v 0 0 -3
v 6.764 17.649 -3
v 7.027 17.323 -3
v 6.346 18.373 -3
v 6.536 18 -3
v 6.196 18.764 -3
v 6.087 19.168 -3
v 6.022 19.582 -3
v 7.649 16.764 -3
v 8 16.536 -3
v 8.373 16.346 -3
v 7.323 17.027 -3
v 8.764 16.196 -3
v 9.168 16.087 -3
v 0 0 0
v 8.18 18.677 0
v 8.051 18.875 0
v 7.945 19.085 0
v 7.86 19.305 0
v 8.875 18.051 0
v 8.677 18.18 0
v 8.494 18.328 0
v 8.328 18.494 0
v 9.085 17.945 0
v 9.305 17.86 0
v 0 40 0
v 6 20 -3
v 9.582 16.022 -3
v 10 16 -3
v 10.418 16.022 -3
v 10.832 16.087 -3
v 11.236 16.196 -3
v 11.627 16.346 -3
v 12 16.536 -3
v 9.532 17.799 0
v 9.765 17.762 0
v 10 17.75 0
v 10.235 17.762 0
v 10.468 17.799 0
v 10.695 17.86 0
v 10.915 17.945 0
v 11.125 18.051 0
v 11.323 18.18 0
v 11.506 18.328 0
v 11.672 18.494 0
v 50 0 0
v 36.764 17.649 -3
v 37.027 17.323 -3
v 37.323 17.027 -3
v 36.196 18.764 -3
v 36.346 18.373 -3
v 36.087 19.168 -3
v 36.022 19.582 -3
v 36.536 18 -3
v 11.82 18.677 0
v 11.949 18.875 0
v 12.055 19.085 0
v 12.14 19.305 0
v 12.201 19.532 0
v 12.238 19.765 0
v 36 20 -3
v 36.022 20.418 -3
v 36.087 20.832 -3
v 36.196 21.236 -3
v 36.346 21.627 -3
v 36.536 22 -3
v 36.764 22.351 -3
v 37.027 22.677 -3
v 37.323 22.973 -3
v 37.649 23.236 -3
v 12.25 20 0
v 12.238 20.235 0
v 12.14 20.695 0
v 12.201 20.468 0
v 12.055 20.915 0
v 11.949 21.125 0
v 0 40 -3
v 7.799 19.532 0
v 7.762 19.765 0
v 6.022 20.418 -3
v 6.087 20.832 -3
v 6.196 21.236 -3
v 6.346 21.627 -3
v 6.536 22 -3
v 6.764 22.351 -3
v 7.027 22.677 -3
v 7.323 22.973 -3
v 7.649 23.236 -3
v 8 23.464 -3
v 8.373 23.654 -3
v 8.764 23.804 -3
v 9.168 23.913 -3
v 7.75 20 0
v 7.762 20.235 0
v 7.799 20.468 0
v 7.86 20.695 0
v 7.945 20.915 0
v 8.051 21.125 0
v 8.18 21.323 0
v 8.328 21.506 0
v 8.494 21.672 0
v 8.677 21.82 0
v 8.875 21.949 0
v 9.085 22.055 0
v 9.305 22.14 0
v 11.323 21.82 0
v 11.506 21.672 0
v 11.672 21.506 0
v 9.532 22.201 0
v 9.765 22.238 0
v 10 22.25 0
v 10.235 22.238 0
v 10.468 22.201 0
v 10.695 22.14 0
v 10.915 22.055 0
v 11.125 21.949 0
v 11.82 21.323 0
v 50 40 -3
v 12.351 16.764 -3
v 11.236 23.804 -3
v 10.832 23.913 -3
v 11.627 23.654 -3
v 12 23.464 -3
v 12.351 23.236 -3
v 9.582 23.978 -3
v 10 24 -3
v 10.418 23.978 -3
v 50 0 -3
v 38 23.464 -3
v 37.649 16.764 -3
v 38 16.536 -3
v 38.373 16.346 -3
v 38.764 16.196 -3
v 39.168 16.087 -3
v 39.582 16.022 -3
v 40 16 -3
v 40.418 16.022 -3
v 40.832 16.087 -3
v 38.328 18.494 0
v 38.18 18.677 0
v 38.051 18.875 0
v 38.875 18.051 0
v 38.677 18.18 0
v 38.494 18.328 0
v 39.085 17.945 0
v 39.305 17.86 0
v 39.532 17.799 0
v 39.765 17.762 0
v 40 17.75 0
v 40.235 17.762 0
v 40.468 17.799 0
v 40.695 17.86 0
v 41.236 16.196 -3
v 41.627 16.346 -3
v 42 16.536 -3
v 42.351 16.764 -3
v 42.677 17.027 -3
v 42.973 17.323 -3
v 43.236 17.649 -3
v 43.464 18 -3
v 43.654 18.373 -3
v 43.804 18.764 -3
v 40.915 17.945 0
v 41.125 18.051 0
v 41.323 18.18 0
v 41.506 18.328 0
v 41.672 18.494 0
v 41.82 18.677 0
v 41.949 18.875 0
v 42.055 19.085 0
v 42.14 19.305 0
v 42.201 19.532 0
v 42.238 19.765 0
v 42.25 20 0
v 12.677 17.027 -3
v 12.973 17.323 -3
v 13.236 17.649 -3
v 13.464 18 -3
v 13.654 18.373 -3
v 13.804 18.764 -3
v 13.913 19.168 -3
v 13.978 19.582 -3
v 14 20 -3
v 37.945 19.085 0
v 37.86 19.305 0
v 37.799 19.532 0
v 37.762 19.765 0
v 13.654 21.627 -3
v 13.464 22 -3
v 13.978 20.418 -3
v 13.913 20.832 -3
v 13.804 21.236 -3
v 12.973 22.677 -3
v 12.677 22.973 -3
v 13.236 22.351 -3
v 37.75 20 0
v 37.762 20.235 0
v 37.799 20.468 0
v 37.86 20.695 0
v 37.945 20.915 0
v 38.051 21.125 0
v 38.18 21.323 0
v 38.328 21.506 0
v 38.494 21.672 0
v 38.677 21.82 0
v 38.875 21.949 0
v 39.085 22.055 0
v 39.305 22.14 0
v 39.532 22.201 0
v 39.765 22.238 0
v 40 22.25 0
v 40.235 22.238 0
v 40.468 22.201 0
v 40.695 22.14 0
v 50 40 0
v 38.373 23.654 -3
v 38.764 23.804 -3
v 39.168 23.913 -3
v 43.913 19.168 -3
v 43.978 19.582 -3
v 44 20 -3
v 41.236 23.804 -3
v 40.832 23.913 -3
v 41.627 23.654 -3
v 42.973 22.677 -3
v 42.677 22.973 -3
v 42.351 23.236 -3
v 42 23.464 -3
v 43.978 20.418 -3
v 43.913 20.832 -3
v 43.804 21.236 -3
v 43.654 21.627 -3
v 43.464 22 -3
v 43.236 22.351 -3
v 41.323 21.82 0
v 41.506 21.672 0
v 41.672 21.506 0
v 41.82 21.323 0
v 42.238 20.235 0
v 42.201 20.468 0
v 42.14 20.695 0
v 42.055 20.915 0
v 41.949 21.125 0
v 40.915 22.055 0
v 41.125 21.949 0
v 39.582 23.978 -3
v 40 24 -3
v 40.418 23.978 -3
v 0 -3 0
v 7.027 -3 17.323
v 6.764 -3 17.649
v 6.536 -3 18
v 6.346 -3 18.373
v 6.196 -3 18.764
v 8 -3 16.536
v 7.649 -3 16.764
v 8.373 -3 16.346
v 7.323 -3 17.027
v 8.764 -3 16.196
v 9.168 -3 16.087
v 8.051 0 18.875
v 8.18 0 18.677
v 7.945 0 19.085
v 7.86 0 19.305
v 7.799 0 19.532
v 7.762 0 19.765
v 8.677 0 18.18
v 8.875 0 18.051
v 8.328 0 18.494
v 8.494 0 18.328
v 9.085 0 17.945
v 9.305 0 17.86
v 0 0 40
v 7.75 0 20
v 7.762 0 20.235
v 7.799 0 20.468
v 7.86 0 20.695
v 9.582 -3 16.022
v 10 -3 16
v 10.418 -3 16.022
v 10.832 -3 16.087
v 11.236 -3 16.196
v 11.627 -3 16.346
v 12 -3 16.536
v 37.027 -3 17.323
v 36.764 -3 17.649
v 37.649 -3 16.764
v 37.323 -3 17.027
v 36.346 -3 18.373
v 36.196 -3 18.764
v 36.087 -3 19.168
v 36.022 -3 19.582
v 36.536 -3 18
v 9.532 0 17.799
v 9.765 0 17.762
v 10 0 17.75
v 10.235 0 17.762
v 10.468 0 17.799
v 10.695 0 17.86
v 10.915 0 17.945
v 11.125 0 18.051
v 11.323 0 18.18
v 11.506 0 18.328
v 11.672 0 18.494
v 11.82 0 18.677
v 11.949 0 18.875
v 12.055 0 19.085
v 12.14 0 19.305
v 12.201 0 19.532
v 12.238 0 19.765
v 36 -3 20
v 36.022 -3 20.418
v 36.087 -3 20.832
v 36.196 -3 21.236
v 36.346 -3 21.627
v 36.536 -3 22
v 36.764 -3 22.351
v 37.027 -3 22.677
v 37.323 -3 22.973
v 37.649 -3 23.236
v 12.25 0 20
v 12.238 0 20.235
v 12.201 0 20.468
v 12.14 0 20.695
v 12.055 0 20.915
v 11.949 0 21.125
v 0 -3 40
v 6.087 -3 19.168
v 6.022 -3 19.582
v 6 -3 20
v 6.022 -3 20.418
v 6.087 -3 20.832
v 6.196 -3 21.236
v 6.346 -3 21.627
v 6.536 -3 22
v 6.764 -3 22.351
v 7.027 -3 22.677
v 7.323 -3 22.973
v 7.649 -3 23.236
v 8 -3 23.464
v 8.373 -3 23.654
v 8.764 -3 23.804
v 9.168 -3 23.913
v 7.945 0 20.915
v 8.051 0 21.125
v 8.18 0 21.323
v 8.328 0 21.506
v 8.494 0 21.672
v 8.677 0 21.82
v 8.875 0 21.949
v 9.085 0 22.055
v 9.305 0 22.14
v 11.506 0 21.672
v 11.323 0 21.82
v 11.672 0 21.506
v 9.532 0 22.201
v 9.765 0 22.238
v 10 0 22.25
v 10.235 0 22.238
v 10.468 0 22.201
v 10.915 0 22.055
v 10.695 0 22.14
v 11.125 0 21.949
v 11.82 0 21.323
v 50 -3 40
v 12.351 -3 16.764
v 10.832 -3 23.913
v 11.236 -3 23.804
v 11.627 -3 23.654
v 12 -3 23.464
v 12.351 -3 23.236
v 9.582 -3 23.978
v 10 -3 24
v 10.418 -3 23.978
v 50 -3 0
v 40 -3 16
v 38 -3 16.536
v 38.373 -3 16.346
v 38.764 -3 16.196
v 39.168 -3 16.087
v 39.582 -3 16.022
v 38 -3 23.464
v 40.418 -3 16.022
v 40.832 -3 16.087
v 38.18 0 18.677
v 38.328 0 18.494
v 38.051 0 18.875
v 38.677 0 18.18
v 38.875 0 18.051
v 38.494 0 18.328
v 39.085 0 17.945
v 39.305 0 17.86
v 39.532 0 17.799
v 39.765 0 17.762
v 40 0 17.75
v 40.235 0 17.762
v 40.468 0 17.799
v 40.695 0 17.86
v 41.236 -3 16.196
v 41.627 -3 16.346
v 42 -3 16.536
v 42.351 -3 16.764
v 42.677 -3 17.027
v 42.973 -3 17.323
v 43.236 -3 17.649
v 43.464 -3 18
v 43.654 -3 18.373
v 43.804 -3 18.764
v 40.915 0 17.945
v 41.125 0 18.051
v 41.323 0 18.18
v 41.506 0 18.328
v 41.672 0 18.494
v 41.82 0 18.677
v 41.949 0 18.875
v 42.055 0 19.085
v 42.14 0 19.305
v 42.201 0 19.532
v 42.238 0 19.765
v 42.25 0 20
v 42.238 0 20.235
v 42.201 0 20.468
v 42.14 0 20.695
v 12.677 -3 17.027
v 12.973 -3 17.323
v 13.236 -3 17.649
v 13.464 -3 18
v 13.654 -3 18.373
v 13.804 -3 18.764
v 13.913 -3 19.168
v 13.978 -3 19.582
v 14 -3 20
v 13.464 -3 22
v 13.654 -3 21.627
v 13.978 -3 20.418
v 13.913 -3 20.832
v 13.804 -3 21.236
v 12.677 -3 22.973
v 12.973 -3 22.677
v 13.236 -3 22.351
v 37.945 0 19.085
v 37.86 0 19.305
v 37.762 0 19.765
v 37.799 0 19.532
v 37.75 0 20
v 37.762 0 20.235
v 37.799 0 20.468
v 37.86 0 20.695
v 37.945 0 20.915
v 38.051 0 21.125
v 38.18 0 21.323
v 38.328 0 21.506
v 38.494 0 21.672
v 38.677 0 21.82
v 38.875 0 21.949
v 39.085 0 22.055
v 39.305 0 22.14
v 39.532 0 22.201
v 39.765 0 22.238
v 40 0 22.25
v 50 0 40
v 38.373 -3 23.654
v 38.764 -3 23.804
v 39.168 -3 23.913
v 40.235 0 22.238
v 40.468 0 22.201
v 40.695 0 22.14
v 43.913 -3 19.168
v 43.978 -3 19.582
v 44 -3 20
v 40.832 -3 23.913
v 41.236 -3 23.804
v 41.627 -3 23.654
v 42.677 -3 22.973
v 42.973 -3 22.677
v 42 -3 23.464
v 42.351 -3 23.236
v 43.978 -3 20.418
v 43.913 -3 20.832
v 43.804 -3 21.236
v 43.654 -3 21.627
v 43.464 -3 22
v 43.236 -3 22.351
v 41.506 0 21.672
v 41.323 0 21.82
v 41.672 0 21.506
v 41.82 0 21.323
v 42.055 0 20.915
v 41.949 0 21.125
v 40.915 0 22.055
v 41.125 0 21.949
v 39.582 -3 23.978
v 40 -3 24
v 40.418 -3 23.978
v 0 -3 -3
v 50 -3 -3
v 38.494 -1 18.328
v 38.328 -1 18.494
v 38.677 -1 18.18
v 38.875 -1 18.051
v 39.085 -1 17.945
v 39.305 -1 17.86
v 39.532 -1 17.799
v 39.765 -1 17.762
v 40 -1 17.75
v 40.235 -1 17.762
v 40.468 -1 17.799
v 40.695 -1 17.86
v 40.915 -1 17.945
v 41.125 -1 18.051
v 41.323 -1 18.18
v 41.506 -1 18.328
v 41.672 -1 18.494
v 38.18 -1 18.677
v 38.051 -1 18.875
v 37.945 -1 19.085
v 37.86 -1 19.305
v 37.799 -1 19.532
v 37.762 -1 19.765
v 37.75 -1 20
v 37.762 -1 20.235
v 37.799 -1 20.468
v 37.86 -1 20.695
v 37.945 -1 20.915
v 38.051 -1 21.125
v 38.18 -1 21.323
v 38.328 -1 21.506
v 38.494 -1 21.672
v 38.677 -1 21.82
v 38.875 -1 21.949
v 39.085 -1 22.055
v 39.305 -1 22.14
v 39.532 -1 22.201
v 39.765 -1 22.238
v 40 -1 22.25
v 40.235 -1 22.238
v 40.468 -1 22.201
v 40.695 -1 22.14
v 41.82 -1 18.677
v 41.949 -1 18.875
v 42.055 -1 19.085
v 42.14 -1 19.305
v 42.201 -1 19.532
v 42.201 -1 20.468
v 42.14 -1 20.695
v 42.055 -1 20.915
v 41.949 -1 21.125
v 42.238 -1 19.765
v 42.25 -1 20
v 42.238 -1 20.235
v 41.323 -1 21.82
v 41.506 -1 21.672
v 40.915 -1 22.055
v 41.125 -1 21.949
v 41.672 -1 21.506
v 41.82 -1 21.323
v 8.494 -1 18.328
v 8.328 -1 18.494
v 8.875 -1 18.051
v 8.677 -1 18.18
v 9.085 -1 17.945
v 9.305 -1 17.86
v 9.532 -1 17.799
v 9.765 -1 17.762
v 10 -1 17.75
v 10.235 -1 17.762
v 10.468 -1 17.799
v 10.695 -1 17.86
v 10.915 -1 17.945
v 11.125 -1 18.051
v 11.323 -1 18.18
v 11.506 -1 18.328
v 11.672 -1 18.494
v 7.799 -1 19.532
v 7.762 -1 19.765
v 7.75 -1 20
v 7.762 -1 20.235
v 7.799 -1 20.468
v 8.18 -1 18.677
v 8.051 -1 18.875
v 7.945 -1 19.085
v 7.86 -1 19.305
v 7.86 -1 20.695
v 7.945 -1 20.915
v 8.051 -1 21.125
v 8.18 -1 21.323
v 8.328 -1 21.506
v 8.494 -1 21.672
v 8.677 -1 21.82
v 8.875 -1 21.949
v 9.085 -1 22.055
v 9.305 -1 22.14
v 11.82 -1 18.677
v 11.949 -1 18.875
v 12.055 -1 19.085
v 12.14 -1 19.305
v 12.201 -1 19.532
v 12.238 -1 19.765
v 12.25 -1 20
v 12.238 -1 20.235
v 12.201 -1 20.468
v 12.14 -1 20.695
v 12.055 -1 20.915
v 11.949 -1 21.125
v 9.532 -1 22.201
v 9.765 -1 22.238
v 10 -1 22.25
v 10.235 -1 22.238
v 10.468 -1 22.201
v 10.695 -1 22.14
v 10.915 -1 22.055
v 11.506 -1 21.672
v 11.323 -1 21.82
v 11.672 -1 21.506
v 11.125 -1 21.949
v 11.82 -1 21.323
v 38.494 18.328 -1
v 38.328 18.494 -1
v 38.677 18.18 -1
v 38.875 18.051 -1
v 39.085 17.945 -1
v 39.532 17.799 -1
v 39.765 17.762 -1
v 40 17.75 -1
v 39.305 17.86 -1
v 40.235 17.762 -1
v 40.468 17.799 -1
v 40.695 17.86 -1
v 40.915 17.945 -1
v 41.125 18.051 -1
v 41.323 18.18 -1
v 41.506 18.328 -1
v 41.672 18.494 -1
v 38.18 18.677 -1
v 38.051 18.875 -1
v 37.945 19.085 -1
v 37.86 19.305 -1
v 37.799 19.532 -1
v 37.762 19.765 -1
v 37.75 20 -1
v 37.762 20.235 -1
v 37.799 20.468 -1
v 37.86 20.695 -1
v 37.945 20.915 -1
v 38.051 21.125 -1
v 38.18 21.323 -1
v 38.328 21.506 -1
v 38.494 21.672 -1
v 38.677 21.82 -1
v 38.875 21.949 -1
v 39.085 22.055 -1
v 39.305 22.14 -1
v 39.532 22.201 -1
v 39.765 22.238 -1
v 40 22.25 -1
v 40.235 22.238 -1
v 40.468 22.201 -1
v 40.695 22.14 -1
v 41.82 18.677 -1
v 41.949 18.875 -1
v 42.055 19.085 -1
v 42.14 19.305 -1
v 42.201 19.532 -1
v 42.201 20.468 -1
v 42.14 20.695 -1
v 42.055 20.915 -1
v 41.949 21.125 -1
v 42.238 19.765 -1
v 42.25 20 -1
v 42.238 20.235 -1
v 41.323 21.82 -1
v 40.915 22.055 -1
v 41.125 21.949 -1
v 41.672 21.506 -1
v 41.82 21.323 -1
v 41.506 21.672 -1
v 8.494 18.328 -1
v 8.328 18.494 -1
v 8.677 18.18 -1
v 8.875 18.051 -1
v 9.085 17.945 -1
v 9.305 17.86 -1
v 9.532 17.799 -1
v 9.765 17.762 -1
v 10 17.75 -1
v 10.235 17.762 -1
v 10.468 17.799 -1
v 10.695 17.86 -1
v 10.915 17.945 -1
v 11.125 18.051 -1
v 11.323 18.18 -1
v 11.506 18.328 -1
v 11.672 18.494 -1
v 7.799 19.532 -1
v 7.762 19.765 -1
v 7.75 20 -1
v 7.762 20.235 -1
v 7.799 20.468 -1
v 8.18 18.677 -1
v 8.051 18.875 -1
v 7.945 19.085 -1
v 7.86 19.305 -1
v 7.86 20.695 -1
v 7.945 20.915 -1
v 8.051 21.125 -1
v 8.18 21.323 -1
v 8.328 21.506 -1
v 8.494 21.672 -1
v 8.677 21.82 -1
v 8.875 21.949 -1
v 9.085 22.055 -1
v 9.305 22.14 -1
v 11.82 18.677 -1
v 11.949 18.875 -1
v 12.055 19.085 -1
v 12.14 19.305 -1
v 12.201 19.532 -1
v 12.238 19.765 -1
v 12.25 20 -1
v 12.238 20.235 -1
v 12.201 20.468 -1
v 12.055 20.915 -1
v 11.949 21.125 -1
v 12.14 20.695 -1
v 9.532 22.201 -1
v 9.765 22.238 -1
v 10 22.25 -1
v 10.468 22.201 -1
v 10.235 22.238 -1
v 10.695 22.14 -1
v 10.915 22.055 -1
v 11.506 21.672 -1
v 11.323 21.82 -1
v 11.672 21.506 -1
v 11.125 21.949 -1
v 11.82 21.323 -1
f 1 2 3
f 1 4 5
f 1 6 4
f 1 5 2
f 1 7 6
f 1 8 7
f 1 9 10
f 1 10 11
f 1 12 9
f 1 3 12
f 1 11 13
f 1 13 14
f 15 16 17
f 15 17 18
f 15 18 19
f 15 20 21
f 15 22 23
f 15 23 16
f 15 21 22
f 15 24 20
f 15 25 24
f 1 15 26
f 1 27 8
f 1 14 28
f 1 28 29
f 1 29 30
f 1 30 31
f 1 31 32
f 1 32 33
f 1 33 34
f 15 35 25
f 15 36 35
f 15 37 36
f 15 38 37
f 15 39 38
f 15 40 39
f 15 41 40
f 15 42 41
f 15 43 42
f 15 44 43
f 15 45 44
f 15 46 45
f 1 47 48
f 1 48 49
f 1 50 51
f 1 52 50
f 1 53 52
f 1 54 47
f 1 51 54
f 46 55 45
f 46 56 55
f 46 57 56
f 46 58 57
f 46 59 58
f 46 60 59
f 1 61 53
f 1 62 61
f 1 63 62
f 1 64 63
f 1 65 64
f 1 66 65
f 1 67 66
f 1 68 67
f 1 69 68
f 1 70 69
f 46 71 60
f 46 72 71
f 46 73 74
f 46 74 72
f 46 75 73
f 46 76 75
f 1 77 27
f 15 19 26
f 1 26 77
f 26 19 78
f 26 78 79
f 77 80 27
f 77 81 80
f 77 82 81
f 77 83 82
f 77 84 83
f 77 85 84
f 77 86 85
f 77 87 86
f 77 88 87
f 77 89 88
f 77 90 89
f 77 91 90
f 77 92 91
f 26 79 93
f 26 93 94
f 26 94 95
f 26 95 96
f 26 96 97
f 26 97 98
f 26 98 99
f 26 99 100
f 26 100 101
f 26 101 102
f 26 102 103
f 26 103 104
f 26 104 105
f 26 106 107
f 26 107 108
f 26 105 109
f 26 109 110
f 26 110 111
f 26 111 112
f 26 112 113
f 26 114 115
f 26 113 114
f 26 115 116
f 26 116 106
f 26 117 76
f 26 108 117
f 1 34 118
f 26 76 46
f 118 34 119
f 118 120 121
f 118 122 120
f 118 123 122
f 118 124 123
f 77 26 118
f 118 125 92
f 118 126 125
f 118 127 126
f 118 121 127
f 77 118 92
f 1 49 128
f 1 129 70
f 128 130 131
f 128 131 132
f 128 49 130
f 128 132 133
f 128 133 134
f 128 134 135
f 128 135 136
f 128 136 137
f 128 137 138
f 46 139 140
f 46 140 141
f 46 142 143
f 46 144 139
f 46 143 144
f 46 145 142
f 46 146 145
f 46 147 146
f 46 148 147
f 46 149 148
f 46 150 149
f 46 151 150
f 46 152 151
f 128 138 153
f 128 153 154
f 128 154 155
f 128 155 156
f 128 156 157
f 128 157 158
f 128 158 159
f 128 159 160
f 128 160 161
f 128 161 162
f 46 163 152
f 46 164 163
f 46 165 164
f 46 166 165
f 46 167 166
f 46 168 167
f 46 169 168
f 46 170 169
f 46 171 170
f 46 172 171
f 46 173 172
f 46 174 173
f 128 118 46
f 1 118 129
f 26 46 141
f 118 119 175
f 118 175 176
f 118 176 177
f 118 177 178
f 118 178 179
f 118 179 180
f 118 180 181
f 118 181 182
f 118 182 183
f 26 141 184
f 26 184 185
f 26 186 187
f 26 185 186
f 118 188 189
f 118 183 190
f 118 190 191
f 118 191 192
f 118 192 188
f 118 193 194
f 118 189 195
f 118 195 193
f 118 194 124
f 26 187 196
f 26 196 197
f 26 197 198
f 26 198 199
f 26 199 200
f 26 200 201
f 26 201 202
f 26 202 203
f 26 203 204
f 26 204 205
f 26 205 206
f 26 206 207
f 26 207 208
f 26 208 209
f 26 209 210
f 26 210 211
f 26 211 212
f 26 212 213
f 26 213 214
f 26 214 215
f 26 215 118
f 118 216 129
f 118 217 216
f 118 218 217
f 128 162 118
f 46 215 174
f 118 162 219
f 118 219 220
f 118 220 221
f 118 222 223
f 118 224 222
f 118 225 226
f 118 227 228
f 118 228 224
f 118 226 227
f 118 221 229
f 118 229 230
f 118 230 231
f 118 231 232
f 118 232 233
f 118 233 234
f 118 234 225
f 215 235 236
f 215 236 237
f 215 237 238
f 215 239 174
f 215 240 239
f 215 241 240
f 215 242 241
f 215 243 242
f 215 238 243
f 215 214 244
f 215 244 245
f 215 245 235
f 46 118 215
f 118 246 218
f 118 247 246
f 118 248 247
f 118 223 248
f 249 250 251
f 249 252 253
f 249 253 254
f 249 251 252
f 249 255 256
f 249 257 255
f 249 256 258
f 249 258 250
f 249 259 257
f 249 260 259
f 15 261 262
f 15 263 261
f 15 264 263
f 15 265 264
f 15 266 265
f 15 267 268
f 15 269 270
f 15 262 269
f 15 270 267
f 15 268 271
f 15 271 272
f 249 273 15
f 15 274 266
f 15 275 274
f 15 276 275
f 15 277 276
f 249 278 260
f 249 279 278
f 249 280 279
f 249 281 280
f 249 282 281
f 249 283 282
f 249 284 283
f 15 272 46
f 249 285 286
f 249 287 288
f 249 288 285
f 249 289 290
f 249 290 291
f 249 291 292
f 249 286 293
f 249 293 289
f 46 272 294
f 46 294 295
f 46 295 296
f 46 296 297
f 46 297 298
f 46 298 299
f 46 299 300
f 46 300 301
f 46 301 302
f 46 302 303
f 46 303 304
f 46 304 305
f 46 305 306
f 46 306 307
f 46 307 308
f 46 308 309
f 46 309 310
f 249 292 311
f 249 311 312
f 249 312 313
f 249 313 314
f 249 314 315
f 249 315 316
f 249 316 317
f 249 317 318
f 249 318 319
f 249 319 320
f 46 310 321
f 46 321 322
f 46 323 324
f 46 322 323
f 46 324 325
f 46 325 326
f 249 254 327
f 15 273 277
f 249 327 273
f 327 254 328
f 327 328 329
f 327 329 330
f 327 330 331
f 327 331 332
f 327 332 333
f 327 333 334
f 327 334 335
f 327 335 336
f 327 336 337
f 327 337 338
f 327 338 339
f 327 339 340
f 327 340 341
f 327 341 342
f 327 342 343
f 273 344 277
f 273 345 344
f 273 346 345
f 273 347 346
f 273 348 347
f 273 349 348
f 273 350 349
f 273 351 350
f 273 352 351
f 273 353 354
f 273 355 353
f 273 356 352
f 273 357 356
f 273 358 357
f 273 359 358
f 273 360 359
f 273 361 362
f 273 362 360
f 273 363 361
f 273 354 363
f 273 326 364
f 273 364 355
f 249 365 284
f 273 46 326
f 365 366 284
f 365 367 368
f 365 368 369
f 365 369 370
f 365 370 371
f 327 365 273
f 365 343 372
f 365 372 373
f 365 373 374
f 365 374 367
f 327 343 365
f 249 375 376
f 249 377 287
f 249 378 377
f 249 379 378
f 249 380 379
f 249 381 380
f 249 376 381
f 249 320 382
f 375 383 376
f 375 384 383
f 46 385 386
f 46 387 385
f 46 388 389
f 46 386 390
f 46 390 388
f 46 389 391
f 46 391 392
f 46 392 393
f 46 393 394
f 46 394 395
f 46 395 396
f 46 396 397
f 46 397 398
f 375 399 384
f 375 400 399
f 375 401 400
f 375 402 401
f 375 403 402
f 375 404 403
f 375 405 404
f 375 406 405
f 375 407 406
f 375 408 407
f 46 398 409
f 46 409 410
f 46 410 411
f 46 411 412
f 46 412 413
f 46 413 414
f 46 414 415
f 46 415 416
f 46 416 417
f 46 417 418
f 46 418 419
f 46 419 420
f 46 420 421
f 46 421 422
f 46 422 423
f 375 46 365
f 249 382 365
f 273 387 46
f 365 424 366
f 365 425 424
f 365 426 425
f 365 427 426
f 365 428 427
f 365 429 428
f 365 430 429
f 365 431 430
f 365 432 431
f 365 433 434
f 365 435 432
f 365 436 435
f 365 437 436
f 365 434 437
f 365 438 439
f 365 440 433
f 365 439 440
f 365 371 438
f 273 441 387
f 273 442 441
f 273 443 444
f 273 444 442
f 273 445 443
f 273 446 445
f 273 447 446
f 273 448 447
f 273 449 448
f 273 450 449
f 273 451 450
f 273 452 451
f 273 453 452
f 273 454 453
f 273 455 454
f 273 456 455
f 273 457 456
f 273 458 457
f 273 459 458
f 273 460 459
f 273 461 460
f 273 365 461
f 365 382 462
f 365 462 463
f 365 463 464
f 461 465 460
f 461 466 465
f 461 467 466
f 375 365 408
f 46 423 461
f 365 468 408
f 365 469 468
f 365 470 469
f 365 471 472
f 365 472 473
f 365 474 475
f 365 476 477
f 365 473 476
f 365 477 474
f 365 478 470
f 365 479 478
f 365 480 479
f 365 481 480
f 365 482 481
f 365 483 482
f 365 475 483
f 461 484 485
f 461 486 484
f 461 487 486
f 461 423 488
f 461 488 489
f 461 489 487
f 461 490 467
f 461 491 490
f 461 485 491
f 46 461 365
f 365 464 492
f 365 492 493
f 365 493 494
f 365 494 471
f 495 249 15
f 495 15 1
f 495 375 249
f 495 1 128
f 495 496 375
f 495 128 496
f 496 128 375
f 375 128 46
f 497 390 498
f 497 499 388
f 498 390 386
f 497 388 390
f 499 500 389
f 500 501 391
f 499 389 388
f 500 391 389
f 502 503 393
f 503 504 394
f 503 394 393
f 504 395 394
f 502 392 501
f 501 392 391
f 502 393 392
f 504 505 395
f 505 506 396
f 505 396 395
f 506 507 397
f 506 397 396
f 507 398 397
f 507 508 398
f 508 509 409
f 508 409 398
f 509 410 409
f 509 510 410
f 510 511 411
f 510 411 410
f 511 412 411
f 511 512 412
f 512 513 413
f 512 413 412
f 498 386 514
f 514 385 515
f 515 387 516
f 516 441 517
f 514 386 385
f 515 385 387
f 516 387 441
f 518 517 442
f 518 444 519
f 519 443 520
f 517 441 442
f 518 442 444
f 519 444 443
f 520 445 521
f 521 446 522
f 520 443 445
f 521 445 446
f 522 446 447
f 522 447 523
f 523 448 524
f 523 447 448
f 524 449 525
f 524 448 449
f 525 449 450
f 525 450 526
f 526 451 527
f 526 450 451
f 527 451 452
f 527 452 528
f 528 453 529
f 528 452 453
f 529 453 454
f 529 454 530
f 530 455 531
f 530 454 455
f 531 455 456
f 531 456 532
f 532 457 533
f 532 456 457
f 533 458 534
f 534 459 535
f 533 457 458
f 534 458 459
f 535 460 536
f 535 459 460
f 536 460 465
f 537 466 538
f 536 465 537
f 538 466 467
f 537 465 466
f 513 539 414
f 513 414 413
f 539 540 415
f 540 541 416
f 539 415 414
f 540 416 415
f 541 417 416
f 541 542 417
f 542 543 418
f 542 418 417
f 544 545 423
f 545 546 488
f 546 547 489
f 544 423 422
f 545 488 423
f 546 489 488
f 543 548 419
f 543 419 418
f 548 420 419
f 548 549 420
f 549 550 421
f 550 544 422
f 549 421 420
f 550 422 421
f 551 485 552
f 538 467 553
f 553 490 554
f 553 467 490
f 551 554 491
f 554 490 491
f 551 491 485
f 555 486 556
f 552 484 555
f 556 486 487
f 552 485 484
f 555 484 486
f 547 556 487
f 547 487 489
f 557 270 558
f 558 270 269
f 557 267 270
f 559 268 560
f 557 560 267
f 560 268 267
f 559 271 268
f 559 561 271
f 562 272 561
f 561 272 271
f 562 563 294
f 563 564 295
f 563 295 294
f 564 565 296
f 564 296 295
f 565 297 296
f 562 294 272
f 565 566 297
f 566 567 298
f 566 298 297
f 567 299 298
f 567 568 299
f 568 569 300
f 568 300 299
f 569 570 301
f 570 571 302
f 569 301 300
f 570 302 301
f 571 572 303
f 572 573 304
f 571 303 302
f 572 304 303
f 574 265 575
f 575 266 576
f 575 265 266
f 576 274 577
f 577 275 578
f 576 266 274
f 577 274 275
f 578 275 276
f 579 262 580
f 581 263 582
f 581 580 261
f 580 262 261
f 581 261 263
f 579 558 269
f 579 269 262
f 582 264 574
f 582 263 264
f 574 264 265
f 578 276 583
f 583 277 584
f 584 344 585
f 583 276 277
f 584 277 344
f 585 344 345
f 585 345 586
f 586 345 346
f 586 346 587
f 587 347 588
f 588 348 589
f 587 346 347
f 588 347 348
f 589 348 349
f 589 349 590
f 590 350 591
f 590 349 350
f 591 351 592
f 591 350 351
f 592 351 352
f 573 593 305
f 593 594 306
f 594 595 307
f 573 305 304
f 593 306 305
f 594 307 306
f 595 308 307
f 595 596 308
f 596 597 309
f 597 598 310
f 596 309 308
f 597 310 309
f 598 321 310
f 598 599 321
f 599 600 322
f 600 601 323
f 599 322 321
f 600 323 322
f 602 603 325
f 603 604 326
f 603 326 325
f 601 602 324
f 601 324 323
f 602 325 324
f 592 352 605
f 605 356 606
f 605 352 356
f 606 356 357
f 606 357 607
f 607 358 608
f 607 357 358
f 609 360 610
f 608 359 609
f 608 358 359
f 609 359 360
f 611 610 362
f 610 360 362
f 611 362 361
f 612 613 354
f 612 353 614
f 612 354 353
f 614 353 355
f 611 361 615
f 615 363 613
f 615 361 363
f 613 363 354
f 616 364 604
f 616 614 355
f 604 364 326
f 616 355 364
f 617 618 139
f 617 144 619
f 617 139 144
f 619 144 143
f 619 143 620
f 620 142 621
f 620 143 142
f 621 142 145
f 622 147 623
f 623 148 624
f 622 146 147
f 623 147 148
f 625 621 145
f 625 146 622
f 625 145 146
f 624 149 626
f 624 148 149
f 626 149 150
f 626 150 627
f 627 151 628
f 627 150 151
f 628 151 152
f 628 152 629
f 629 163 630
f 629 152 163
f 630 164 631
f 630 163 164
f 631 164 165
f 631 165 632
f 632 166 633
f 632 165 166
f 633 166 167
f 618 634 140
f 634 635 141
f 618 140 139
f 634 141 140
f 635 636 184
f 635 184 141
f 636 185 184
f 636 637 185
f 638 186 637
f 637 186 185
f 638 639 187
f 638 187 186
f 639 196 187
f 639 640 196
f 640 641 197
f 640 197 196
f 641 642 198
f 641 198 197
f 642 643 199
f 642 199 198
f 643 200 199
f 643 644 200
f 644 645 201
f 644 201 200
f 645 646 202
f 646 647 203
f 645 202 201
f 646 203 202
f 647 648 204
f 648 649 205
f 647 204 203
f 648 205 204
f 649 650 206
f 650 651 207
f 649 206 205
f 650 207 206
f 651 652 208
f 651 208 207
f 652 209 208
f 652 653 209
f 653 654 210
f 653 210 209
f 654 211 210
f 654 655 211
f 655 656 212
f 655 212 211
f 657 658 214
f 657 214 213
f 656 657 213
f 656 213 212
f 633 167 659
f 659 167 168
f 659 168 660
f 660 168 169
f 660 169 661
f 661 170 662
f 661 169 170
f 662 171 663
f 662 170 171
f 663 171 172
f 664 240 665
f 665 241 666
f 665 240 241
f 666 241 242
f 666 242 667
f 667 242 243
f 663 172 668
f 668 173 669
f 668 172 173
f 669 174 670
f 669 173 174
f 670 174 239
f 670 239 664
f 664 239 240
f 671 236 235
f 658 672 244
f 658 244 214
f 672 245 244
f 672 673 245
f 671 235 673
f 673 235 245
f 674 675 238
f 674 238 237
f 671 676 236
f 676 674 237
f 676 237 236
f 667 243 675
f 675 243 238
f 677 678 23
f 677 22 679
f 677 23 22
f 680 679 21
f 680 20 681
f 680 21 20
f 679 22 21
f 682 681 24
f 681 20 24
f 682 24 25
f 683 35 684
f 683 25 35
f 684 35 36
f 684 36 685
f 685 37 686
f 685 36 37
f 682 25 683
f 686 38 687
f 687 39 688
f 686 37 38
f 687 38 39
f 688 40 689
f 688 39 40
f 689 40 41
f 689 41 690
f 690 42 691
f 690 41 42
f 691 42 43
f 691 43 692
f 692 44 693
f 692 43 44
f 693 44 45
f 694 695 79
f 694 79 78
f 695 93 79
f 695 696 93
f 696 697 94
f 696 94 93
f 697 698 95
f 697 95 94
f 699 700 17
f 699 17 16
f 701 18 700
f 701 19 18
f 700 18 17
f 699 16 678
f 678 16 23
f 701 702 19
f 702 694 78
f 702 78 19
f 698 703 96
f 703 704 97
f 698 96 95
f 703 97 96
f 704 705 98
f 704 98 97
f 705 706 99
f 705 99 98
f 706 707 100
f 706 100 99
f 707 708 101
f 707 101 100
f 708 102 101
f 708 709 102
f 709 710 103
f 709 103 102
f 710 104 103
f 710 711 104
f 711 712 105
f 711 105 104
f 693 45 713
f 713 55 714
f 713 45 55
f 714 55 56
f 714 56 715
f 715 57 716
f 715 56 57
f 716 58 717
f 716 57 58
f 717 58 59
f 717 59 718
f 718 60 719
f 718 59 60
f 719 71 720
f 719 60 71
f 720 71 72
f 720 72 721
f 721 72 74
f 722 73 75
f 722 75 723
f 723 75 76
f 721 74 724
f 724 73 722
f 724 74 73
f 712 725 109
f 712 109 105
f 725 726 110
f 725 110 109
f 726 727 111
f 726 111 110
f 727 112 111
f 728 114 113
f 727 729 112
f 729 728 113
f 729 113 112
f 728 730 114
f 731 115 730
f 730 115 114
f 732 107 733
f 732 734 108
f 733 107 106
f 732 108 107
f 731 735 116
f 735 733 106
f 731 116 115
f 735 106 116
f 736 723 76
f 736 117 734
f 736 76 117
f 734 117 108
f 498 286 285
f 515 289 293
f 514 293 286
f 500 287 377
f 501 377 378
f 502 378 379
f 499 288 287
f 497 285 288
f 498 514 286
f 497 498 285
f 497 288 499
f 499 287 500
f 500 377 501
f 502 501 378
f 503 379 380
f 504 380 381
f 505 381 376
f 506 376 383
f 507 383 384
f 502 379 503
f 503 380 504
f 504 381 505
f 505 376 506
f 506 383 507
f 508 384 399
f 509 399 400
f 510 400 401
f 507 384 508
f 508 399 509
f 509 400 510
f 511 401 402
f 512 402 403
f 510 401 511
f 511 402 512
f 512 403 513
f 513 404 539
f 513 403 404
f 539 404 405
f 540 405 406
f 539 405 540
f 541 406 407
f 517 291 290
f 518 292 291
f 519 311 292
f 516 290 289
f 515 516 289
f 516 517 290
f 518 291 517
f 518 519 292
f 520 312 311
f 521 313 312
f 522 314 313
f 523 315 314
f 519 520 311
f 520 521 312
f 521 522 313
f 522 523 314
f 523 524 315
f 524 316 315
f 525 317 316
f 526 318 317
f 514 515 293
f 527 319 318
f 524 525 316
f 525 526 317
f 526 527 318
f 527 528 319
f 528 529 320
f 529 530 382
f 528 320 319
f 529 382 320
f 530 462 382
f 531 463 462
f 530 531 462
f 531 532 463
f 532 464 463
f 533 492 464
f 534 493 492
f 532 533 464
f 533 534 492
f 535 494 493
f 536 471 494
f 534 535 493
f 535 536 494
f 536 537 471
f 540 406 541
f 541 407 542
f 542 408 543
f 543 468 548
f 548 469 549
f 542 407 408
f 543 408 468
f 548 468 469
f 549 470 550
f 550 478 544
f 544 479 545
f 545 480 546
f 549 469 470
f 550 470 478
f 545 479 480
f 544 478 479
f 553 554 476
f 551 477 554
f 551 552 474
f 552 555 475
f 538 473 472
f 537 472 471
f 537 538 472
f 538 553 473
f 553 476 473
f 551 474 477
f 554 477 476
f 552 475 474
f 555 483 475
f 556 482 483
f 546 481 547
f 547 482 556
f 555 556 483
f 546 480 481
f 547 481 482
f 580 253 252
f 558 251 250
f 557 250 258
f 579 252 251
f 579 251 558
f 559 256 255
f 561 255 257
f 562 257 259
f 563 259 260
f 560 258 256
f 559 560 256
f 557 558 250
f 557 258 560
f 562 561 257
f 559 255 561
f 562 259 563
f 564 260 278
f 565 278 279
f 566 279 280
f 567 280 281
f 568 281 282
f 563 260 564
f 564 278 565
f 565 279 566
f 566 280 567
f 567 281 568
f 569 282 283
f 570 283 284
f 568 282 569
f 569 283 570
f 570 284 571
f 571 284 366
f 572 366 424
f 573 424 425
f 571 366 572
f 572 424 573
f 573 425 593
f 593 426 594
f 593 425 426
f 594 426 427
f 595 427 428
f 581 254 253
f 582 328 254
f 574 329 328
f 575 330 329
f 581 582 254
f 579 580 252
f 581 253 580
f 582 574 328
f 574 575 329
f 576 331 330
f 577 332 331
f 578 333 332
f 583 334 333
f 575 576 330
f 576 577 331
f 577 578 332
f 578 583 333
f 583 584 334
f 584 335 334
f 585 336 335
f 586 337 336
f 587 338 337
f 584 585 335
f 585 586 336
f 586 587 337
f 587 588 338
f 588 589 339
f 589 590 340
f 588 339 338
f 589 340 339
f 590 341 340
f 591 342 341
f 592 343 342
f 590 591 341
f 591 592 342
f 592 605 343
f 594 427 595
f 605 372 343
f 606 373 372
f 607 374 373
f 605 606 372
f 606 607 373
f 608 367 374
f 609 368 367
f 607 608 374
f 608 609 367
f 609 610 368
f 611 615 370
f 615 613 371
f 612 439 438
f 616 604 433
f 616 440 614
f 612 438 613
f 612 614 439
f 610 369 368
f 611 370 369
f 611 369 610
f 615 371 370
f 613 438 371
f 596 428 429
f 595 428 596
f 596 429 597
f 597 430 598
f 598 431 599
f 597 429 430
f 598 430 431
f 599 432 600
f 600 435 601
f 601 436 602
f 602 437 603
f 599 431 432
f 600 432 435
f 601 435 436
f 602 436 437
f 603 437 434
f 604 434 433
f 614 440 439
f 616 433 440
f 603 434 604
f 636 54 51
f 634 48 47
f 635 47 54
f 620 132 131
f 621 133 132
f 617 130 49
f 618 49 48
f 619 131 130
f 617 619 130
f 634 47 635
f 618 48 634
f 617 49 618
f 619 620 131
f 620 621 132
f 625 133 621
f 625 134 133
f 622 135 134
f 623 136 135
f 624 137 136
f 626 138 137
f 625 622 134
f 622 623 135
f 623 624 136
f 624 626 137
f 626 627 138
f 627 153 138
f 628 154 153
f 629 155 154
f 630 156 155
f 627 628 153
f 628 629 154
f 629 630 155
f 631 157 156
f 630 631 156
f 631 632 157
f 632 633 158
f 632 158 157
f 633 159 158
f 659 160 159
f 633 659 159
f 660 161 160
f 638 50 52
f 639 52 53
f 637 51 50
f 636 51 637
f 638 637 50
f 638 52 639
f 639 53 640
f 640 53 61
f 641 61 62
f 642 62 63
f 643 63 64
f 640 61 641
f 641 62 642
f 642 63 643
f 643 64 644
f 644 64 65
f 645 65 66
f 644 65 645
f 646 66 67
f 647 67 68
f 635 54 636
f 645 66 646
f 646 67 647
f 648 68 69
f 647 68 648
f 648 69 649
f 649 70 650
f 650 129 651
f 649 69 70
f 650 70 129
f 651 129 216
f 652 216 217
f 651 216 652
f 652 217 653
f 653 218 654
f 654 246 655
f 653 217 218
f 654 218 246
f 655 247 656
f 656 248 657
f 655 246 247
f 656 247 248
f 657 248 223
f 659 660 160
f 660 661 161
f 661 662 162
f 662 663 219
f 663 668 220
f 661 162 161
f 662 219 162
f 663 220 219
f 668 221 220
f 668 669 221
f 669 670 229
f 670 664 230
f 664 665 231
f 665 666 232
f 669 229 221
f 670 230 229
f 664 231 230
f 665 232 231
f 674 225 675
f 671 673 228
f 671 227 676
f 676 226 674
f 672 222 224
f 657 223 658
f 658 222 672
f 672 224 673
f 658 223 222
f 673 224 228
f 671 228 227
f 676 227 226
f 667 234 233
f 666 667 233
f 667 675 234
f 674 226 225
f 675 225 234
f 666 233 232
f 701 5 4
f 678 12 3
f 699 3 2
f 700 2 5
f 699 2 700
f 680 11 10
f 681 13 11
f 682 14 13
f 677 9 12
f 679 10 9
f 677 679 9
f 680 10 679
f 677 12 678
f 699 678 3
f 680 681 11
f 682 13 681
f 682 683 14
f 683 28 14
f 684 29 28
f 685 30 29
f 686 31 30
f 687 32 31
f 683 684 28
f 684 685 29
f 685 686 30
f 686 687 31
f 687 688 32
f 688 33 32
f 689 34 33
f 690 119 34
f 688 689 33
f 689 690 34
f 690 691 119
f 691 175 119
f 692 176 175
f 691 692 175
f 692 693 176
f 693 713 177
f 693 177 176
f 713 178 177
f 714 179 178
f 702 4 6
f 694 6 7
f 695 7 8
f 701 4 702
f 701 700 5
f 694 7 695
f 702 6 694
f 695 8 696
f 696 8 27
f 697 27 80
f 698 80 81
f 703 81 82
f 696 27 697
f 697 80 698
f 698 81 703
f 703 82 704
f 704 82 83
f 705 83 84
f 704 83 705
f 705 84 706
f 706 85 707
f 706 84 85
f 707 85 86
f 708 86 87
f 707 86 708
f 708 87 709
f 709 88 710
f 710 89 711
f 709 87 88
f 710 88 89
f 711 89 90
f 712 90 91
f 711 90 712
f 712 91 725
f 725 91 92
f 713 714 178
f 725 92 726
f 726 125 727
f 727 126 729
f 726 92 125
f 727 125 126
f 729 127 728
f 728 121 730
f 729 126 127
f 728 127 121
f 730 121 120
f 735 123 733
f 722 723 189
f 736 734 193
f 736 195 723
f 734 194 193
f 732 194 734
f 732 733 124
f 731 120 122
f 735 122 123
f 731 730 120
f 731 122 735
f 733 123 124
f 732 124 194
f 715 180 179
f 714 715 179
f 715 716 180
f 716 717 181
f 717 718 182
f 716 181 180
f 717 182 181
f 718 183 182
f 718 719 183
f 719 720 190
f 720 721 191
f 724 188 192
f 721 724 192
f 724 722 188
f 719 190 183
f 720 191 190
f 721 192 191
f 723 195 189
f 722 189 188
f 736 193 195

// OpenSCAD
$fn = 60;

module m4_countersunk_hole(t=3) {
    // 基準面(Z=0)を外側表面とし、+Z方向(内側)に貫通させる
    // 貫通穴
    translate([0, 0, -1]) 
        cylinder(h=t + 2, d=4.5);
        
    // 皿座面 (深さ2mmでテーパー)
    // Z=0(外側表面)で直径8mm、Z=2で直径4.5mm
    // 表面が確実に削れるようにマージン±0.1mmを考慮
    translate([0, 0, -0.1]) 
        cylinder(h=2.2, d1=8.175, d2=4.325);
}

difference() {
    union() {
        // 水平面
        // 内側コーナー(0,0,0)から +Y 方向に40mm伸びる
        translate([0, 0, -3]) 
            cube([50, 40, 3]);
            
        // 垂直面
        // 内側コーナー(0,0,0)から +Z 方向に40mm伸びる
        translate([0, -3, 0]) 
            cube([50, 3, 40]);
            
        // 外側コーナーの共有部分
        translate([0, -3, -3]) 
            cube([50, 3, 3]);
    }
    
    // 水平面の皿穴
    // Y方向の中心 (0から40の中心 = 20)
    // X方向の縁から10mm -> X=10, 40
    // 皿座面を下(-Z方向)に向ける
    translate([10, 20, -3]) 
        m4_countersunk_hole(3);
    translate([40, 20, -3]) 
        m4_countersunk_hole(3);
        
    // 垂直面の皿穴
    // Z方向の中心 (0から40の中心 = 20)
    // X方向の縁から10mm -> X=10, 40
    // 皿座面を裏(-Y方向)に向けるように -90度回転
    translate([10, -3, 20]) 
        rotate([-90, 0, 0]) 
        m4_countersunk_hole(3);
    translate([40, -3, 20]) 
        rotate([-90, 0, 0]) 
        m4_countersunk_hole(3);
}
